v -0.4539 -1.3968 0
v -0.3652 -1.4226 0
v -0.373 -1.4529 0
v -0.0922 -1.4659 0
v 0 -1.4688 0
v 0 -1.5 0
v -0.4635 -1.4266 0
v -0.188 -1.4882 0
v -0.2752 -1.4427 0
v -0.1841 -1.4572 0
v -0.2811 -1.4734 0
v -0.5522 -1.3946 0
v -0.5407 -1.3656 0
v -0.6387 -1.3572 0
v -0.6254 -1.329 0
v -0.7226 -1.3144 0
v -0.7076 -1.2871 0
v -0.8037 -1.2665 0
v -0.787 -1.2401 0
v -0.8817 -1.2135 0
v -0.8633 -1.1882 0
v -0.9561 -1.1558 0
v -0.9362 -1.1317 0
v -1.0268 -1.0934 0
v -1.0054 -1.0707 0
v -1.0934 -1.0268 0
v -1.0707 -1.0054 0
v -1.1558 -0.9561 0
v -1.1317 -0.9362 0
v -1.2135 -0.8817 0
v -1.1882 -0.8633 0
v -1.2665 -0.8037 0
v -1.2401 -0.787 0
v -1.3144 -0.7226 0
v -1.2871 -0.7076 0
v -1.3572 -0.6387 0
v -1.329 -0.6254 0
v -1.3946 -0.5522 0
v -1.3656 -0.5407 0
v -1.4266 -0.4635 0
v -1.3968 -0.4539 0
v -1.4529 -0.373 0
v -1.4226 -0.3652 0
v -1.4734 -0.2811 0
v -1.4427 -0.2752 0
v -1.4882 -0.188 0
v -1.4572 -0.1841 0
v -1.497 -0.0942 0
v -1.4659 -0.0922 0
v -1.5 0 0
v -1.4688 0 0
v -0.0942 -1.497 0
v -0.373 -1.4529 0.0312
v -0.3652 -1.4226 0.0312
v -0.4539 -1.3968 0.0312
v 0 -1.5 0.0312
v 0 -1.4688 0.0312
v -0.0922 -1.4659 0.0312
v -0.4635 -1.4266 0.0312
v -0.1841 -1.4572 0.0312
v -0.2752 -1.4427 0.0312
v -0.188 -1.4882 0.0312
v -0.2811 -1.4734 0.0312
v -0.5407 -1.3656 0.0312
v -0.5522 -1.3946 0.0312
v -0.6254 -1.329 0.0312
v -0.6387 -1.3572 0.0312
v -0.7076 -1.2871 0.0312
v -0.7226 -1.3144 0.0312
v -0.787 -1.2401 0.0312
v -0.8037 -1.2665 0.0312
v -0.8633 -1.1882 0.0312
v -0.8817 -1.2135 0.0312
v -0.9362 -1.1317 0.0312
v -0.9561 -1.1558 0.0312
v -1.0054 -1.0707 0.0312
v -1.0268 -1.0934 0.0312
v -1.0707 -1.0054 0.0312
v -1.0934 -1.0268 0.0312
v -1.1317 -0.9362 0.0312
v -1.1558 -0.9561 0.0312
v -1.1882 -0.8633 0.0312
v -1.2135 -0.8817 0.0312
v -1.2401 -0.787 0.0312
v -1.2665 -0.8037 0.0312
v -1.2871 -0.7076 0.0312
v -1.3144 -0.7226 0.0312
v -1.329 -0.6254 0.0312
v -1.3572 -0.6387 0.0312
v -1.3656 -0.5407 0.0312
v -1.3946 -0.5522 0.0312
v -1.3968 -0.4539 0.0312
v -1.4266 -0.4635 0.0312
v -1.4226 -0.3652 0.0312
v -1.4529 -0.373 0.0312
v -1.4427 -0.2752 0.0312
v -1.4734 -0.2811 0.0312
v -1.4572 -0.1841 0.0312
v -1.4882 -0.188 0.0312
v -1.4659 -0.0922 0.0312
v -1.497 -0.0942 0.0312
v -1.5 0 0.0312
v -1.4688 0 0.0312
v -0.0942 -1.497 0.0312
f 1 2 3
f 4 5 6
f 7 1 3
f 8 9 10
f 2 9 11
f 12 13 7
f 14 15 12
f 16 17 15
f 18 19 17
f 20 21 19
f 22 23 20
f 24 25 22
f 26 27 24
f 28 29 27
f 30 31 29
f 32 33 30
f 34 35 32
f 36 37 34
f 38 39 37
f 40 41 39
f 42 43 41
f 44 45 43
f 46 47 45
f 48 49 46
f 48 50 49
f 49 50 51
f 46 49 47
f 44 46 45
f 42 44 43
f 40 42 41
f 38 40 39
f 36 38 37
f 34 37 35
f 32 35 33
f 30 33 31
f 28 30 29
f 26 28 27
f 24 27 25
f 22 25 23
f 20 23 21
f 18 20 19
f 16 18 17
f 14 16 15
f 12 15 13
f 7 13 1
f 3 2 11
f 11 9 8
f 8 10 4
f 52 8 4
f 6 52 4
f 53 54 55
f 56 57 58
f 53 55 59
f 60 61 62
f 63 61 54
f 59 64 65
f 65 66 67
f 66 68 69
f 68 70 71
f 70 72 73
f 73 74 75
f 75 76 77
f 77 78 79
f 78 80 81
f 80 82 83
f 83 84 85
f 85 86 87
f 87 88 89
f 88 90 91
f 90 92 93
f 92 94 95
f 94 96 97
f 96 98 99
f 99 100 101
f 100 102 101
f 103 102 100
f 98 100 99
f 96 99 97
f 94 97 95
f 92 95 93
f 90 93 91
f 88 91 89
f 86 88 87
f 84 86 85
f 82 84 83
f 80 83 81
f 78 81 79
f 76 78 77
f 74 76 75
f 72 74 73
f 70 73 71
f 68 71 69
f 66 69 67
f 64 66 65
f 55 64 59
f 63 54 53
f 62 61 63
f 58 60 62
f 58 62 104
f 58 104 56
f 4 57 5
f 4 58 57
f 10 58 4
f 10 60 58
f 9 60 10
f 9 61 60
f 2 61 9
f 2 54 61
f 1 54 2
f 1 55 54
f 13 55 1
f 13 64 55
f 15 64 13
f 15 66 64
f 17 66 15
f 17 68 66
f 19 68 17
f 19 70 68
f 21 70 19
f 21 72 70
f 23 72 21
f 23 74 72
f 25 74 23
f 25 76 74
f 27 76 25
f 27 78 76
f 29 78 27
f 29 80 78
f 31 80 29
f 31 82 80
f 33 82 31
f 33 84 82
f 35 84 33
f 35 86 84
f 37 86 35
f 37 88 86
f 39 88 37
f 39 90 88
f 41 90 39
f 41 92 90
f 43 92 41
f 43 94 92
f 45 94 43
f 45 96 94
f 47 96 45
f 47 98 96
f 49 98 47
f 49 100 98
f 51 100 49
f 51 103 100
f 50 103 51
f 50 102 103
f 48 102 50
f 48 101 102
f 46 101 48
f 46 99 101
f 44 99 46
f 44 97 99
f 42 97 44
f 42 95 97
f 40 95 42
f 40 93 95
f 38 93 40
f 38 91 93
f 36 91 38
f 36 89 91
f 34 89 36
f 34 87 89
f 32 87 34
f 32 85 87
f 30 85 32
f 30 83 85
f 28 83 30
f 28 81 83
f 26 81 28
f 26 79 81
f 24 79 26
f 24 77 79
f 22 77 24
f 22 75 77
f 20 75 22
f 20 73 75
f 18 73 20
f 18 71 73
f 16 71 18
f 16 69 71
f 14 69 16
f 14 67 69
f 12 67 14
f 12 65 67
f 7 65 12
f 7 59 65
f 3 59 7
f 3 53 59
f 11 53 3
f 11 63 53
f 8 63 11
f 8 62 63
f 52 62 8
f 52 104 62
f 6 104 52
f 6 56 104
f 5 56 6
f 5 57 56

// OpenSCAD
// file: MMlib/MMlib/MMlib/circle_strip.scad
//#####################################
// circle_strip
// (c) 2021 - Roie R. Black
//=====================================
$fn = 100;


module circle_strip(r=3, t=0.5) {
  difference() {
    circle(r);
    circle(r-t);
  }
}

circular_strip();
// file: MMlib/MMlib/circular_arc_strip.scad
//#####################################
// circular_arc_strip
// (c) 2021 - Roie R. Black
//=====================================
$fn = 100;
use <MMlib/circle_strip.scad>


module circular_arc_strip(
    r=3,
    start_angle=0, end_angle=270,
    t=0.5
  ) {
  dang = (end_angle-start_angle)/4;
  a0 = start_angle;
  a1 = a0 + dang;
  a2 = a1 + dang;
  a3 = a2 + dang;
  a4 = a3 + dang;
  pr = r * sqrt(2) + 1;
  intersection() {
    polygon([
      [0,0],
      [pr*cos(a0), pr*sin(a0)],
      [pr*cos(a1), pr*sin(a1)],
      [pr*cos(a2), pr*sin(a2)],
      [pr*cos(a3), pr*sin(a3)],
      [pr*cos(a4), pr*sin(a4)],
      [0,0]
    ]);
    circle_strip(r,t);
  }
}

circular_arc_strip();
// file: ../../../constraints.scad
//####################################
// Math-Magik LPP - Design Constraints
// (c) 2021 by Roie R. Black
//====================================

// AMA Rules for event 208
//------------------------------------

max_overall_length = 20;
max_projected_wing_span = 18;
max_bearing_to_rear_hook = 10;
max_wing_chord = 5;
max_stab_span = 12;
max_stab_chord = 4;
max_prop_diameter = 12;
// file: MMlib/circular_arc_spar.scad
//#####################################
// circular_arc_spar
// (c) 2021 - Roie R. Black
//=====================================
$fn = 100;

use <MMlib/circular_arc_strip.scad>


module circular_arc_spar(
    r=3,
    start_angle=0, end_angle=270,
    t=0.5,
    h=0.5
  ) {
  linear_extrude(height=h)
    circular_arc_strip(r,start_angle, end_angle, t);
}

circular_arc_spar();
// file: ../../stab_data.scad
//#####################################
// stab.data
// (c) 2021 by Roie R. Black
//=====================================
include <../constraints.scad>

// center section dimensions
center_span = 6;
spar_size = 1/16;
rib_chord = max_stab_chord - 2 * spar_size;
rib_camber = 2;
num_center_ribs = 3;

// tip section dimensions
tip_span = (max_stab_span - center_span)/2;
tip_radius = 1.5;
tip_le_span = tip_span - tip_radius;
tip_rib_chord = max_stab_chord - tip_radius - spar_size;
// main file
//########################################
// tip_arc.scad
// (c) 2021 - Roie R. Black
//****************************************
include <../../stab_data.scad>

use <MMlib/circular_arc_spar.scad>

module tip_arc(r=tip_radius, size=spar_size/2) {
    circular_arc_spar(r, 180,270, size,size);
}

tip_arc();
